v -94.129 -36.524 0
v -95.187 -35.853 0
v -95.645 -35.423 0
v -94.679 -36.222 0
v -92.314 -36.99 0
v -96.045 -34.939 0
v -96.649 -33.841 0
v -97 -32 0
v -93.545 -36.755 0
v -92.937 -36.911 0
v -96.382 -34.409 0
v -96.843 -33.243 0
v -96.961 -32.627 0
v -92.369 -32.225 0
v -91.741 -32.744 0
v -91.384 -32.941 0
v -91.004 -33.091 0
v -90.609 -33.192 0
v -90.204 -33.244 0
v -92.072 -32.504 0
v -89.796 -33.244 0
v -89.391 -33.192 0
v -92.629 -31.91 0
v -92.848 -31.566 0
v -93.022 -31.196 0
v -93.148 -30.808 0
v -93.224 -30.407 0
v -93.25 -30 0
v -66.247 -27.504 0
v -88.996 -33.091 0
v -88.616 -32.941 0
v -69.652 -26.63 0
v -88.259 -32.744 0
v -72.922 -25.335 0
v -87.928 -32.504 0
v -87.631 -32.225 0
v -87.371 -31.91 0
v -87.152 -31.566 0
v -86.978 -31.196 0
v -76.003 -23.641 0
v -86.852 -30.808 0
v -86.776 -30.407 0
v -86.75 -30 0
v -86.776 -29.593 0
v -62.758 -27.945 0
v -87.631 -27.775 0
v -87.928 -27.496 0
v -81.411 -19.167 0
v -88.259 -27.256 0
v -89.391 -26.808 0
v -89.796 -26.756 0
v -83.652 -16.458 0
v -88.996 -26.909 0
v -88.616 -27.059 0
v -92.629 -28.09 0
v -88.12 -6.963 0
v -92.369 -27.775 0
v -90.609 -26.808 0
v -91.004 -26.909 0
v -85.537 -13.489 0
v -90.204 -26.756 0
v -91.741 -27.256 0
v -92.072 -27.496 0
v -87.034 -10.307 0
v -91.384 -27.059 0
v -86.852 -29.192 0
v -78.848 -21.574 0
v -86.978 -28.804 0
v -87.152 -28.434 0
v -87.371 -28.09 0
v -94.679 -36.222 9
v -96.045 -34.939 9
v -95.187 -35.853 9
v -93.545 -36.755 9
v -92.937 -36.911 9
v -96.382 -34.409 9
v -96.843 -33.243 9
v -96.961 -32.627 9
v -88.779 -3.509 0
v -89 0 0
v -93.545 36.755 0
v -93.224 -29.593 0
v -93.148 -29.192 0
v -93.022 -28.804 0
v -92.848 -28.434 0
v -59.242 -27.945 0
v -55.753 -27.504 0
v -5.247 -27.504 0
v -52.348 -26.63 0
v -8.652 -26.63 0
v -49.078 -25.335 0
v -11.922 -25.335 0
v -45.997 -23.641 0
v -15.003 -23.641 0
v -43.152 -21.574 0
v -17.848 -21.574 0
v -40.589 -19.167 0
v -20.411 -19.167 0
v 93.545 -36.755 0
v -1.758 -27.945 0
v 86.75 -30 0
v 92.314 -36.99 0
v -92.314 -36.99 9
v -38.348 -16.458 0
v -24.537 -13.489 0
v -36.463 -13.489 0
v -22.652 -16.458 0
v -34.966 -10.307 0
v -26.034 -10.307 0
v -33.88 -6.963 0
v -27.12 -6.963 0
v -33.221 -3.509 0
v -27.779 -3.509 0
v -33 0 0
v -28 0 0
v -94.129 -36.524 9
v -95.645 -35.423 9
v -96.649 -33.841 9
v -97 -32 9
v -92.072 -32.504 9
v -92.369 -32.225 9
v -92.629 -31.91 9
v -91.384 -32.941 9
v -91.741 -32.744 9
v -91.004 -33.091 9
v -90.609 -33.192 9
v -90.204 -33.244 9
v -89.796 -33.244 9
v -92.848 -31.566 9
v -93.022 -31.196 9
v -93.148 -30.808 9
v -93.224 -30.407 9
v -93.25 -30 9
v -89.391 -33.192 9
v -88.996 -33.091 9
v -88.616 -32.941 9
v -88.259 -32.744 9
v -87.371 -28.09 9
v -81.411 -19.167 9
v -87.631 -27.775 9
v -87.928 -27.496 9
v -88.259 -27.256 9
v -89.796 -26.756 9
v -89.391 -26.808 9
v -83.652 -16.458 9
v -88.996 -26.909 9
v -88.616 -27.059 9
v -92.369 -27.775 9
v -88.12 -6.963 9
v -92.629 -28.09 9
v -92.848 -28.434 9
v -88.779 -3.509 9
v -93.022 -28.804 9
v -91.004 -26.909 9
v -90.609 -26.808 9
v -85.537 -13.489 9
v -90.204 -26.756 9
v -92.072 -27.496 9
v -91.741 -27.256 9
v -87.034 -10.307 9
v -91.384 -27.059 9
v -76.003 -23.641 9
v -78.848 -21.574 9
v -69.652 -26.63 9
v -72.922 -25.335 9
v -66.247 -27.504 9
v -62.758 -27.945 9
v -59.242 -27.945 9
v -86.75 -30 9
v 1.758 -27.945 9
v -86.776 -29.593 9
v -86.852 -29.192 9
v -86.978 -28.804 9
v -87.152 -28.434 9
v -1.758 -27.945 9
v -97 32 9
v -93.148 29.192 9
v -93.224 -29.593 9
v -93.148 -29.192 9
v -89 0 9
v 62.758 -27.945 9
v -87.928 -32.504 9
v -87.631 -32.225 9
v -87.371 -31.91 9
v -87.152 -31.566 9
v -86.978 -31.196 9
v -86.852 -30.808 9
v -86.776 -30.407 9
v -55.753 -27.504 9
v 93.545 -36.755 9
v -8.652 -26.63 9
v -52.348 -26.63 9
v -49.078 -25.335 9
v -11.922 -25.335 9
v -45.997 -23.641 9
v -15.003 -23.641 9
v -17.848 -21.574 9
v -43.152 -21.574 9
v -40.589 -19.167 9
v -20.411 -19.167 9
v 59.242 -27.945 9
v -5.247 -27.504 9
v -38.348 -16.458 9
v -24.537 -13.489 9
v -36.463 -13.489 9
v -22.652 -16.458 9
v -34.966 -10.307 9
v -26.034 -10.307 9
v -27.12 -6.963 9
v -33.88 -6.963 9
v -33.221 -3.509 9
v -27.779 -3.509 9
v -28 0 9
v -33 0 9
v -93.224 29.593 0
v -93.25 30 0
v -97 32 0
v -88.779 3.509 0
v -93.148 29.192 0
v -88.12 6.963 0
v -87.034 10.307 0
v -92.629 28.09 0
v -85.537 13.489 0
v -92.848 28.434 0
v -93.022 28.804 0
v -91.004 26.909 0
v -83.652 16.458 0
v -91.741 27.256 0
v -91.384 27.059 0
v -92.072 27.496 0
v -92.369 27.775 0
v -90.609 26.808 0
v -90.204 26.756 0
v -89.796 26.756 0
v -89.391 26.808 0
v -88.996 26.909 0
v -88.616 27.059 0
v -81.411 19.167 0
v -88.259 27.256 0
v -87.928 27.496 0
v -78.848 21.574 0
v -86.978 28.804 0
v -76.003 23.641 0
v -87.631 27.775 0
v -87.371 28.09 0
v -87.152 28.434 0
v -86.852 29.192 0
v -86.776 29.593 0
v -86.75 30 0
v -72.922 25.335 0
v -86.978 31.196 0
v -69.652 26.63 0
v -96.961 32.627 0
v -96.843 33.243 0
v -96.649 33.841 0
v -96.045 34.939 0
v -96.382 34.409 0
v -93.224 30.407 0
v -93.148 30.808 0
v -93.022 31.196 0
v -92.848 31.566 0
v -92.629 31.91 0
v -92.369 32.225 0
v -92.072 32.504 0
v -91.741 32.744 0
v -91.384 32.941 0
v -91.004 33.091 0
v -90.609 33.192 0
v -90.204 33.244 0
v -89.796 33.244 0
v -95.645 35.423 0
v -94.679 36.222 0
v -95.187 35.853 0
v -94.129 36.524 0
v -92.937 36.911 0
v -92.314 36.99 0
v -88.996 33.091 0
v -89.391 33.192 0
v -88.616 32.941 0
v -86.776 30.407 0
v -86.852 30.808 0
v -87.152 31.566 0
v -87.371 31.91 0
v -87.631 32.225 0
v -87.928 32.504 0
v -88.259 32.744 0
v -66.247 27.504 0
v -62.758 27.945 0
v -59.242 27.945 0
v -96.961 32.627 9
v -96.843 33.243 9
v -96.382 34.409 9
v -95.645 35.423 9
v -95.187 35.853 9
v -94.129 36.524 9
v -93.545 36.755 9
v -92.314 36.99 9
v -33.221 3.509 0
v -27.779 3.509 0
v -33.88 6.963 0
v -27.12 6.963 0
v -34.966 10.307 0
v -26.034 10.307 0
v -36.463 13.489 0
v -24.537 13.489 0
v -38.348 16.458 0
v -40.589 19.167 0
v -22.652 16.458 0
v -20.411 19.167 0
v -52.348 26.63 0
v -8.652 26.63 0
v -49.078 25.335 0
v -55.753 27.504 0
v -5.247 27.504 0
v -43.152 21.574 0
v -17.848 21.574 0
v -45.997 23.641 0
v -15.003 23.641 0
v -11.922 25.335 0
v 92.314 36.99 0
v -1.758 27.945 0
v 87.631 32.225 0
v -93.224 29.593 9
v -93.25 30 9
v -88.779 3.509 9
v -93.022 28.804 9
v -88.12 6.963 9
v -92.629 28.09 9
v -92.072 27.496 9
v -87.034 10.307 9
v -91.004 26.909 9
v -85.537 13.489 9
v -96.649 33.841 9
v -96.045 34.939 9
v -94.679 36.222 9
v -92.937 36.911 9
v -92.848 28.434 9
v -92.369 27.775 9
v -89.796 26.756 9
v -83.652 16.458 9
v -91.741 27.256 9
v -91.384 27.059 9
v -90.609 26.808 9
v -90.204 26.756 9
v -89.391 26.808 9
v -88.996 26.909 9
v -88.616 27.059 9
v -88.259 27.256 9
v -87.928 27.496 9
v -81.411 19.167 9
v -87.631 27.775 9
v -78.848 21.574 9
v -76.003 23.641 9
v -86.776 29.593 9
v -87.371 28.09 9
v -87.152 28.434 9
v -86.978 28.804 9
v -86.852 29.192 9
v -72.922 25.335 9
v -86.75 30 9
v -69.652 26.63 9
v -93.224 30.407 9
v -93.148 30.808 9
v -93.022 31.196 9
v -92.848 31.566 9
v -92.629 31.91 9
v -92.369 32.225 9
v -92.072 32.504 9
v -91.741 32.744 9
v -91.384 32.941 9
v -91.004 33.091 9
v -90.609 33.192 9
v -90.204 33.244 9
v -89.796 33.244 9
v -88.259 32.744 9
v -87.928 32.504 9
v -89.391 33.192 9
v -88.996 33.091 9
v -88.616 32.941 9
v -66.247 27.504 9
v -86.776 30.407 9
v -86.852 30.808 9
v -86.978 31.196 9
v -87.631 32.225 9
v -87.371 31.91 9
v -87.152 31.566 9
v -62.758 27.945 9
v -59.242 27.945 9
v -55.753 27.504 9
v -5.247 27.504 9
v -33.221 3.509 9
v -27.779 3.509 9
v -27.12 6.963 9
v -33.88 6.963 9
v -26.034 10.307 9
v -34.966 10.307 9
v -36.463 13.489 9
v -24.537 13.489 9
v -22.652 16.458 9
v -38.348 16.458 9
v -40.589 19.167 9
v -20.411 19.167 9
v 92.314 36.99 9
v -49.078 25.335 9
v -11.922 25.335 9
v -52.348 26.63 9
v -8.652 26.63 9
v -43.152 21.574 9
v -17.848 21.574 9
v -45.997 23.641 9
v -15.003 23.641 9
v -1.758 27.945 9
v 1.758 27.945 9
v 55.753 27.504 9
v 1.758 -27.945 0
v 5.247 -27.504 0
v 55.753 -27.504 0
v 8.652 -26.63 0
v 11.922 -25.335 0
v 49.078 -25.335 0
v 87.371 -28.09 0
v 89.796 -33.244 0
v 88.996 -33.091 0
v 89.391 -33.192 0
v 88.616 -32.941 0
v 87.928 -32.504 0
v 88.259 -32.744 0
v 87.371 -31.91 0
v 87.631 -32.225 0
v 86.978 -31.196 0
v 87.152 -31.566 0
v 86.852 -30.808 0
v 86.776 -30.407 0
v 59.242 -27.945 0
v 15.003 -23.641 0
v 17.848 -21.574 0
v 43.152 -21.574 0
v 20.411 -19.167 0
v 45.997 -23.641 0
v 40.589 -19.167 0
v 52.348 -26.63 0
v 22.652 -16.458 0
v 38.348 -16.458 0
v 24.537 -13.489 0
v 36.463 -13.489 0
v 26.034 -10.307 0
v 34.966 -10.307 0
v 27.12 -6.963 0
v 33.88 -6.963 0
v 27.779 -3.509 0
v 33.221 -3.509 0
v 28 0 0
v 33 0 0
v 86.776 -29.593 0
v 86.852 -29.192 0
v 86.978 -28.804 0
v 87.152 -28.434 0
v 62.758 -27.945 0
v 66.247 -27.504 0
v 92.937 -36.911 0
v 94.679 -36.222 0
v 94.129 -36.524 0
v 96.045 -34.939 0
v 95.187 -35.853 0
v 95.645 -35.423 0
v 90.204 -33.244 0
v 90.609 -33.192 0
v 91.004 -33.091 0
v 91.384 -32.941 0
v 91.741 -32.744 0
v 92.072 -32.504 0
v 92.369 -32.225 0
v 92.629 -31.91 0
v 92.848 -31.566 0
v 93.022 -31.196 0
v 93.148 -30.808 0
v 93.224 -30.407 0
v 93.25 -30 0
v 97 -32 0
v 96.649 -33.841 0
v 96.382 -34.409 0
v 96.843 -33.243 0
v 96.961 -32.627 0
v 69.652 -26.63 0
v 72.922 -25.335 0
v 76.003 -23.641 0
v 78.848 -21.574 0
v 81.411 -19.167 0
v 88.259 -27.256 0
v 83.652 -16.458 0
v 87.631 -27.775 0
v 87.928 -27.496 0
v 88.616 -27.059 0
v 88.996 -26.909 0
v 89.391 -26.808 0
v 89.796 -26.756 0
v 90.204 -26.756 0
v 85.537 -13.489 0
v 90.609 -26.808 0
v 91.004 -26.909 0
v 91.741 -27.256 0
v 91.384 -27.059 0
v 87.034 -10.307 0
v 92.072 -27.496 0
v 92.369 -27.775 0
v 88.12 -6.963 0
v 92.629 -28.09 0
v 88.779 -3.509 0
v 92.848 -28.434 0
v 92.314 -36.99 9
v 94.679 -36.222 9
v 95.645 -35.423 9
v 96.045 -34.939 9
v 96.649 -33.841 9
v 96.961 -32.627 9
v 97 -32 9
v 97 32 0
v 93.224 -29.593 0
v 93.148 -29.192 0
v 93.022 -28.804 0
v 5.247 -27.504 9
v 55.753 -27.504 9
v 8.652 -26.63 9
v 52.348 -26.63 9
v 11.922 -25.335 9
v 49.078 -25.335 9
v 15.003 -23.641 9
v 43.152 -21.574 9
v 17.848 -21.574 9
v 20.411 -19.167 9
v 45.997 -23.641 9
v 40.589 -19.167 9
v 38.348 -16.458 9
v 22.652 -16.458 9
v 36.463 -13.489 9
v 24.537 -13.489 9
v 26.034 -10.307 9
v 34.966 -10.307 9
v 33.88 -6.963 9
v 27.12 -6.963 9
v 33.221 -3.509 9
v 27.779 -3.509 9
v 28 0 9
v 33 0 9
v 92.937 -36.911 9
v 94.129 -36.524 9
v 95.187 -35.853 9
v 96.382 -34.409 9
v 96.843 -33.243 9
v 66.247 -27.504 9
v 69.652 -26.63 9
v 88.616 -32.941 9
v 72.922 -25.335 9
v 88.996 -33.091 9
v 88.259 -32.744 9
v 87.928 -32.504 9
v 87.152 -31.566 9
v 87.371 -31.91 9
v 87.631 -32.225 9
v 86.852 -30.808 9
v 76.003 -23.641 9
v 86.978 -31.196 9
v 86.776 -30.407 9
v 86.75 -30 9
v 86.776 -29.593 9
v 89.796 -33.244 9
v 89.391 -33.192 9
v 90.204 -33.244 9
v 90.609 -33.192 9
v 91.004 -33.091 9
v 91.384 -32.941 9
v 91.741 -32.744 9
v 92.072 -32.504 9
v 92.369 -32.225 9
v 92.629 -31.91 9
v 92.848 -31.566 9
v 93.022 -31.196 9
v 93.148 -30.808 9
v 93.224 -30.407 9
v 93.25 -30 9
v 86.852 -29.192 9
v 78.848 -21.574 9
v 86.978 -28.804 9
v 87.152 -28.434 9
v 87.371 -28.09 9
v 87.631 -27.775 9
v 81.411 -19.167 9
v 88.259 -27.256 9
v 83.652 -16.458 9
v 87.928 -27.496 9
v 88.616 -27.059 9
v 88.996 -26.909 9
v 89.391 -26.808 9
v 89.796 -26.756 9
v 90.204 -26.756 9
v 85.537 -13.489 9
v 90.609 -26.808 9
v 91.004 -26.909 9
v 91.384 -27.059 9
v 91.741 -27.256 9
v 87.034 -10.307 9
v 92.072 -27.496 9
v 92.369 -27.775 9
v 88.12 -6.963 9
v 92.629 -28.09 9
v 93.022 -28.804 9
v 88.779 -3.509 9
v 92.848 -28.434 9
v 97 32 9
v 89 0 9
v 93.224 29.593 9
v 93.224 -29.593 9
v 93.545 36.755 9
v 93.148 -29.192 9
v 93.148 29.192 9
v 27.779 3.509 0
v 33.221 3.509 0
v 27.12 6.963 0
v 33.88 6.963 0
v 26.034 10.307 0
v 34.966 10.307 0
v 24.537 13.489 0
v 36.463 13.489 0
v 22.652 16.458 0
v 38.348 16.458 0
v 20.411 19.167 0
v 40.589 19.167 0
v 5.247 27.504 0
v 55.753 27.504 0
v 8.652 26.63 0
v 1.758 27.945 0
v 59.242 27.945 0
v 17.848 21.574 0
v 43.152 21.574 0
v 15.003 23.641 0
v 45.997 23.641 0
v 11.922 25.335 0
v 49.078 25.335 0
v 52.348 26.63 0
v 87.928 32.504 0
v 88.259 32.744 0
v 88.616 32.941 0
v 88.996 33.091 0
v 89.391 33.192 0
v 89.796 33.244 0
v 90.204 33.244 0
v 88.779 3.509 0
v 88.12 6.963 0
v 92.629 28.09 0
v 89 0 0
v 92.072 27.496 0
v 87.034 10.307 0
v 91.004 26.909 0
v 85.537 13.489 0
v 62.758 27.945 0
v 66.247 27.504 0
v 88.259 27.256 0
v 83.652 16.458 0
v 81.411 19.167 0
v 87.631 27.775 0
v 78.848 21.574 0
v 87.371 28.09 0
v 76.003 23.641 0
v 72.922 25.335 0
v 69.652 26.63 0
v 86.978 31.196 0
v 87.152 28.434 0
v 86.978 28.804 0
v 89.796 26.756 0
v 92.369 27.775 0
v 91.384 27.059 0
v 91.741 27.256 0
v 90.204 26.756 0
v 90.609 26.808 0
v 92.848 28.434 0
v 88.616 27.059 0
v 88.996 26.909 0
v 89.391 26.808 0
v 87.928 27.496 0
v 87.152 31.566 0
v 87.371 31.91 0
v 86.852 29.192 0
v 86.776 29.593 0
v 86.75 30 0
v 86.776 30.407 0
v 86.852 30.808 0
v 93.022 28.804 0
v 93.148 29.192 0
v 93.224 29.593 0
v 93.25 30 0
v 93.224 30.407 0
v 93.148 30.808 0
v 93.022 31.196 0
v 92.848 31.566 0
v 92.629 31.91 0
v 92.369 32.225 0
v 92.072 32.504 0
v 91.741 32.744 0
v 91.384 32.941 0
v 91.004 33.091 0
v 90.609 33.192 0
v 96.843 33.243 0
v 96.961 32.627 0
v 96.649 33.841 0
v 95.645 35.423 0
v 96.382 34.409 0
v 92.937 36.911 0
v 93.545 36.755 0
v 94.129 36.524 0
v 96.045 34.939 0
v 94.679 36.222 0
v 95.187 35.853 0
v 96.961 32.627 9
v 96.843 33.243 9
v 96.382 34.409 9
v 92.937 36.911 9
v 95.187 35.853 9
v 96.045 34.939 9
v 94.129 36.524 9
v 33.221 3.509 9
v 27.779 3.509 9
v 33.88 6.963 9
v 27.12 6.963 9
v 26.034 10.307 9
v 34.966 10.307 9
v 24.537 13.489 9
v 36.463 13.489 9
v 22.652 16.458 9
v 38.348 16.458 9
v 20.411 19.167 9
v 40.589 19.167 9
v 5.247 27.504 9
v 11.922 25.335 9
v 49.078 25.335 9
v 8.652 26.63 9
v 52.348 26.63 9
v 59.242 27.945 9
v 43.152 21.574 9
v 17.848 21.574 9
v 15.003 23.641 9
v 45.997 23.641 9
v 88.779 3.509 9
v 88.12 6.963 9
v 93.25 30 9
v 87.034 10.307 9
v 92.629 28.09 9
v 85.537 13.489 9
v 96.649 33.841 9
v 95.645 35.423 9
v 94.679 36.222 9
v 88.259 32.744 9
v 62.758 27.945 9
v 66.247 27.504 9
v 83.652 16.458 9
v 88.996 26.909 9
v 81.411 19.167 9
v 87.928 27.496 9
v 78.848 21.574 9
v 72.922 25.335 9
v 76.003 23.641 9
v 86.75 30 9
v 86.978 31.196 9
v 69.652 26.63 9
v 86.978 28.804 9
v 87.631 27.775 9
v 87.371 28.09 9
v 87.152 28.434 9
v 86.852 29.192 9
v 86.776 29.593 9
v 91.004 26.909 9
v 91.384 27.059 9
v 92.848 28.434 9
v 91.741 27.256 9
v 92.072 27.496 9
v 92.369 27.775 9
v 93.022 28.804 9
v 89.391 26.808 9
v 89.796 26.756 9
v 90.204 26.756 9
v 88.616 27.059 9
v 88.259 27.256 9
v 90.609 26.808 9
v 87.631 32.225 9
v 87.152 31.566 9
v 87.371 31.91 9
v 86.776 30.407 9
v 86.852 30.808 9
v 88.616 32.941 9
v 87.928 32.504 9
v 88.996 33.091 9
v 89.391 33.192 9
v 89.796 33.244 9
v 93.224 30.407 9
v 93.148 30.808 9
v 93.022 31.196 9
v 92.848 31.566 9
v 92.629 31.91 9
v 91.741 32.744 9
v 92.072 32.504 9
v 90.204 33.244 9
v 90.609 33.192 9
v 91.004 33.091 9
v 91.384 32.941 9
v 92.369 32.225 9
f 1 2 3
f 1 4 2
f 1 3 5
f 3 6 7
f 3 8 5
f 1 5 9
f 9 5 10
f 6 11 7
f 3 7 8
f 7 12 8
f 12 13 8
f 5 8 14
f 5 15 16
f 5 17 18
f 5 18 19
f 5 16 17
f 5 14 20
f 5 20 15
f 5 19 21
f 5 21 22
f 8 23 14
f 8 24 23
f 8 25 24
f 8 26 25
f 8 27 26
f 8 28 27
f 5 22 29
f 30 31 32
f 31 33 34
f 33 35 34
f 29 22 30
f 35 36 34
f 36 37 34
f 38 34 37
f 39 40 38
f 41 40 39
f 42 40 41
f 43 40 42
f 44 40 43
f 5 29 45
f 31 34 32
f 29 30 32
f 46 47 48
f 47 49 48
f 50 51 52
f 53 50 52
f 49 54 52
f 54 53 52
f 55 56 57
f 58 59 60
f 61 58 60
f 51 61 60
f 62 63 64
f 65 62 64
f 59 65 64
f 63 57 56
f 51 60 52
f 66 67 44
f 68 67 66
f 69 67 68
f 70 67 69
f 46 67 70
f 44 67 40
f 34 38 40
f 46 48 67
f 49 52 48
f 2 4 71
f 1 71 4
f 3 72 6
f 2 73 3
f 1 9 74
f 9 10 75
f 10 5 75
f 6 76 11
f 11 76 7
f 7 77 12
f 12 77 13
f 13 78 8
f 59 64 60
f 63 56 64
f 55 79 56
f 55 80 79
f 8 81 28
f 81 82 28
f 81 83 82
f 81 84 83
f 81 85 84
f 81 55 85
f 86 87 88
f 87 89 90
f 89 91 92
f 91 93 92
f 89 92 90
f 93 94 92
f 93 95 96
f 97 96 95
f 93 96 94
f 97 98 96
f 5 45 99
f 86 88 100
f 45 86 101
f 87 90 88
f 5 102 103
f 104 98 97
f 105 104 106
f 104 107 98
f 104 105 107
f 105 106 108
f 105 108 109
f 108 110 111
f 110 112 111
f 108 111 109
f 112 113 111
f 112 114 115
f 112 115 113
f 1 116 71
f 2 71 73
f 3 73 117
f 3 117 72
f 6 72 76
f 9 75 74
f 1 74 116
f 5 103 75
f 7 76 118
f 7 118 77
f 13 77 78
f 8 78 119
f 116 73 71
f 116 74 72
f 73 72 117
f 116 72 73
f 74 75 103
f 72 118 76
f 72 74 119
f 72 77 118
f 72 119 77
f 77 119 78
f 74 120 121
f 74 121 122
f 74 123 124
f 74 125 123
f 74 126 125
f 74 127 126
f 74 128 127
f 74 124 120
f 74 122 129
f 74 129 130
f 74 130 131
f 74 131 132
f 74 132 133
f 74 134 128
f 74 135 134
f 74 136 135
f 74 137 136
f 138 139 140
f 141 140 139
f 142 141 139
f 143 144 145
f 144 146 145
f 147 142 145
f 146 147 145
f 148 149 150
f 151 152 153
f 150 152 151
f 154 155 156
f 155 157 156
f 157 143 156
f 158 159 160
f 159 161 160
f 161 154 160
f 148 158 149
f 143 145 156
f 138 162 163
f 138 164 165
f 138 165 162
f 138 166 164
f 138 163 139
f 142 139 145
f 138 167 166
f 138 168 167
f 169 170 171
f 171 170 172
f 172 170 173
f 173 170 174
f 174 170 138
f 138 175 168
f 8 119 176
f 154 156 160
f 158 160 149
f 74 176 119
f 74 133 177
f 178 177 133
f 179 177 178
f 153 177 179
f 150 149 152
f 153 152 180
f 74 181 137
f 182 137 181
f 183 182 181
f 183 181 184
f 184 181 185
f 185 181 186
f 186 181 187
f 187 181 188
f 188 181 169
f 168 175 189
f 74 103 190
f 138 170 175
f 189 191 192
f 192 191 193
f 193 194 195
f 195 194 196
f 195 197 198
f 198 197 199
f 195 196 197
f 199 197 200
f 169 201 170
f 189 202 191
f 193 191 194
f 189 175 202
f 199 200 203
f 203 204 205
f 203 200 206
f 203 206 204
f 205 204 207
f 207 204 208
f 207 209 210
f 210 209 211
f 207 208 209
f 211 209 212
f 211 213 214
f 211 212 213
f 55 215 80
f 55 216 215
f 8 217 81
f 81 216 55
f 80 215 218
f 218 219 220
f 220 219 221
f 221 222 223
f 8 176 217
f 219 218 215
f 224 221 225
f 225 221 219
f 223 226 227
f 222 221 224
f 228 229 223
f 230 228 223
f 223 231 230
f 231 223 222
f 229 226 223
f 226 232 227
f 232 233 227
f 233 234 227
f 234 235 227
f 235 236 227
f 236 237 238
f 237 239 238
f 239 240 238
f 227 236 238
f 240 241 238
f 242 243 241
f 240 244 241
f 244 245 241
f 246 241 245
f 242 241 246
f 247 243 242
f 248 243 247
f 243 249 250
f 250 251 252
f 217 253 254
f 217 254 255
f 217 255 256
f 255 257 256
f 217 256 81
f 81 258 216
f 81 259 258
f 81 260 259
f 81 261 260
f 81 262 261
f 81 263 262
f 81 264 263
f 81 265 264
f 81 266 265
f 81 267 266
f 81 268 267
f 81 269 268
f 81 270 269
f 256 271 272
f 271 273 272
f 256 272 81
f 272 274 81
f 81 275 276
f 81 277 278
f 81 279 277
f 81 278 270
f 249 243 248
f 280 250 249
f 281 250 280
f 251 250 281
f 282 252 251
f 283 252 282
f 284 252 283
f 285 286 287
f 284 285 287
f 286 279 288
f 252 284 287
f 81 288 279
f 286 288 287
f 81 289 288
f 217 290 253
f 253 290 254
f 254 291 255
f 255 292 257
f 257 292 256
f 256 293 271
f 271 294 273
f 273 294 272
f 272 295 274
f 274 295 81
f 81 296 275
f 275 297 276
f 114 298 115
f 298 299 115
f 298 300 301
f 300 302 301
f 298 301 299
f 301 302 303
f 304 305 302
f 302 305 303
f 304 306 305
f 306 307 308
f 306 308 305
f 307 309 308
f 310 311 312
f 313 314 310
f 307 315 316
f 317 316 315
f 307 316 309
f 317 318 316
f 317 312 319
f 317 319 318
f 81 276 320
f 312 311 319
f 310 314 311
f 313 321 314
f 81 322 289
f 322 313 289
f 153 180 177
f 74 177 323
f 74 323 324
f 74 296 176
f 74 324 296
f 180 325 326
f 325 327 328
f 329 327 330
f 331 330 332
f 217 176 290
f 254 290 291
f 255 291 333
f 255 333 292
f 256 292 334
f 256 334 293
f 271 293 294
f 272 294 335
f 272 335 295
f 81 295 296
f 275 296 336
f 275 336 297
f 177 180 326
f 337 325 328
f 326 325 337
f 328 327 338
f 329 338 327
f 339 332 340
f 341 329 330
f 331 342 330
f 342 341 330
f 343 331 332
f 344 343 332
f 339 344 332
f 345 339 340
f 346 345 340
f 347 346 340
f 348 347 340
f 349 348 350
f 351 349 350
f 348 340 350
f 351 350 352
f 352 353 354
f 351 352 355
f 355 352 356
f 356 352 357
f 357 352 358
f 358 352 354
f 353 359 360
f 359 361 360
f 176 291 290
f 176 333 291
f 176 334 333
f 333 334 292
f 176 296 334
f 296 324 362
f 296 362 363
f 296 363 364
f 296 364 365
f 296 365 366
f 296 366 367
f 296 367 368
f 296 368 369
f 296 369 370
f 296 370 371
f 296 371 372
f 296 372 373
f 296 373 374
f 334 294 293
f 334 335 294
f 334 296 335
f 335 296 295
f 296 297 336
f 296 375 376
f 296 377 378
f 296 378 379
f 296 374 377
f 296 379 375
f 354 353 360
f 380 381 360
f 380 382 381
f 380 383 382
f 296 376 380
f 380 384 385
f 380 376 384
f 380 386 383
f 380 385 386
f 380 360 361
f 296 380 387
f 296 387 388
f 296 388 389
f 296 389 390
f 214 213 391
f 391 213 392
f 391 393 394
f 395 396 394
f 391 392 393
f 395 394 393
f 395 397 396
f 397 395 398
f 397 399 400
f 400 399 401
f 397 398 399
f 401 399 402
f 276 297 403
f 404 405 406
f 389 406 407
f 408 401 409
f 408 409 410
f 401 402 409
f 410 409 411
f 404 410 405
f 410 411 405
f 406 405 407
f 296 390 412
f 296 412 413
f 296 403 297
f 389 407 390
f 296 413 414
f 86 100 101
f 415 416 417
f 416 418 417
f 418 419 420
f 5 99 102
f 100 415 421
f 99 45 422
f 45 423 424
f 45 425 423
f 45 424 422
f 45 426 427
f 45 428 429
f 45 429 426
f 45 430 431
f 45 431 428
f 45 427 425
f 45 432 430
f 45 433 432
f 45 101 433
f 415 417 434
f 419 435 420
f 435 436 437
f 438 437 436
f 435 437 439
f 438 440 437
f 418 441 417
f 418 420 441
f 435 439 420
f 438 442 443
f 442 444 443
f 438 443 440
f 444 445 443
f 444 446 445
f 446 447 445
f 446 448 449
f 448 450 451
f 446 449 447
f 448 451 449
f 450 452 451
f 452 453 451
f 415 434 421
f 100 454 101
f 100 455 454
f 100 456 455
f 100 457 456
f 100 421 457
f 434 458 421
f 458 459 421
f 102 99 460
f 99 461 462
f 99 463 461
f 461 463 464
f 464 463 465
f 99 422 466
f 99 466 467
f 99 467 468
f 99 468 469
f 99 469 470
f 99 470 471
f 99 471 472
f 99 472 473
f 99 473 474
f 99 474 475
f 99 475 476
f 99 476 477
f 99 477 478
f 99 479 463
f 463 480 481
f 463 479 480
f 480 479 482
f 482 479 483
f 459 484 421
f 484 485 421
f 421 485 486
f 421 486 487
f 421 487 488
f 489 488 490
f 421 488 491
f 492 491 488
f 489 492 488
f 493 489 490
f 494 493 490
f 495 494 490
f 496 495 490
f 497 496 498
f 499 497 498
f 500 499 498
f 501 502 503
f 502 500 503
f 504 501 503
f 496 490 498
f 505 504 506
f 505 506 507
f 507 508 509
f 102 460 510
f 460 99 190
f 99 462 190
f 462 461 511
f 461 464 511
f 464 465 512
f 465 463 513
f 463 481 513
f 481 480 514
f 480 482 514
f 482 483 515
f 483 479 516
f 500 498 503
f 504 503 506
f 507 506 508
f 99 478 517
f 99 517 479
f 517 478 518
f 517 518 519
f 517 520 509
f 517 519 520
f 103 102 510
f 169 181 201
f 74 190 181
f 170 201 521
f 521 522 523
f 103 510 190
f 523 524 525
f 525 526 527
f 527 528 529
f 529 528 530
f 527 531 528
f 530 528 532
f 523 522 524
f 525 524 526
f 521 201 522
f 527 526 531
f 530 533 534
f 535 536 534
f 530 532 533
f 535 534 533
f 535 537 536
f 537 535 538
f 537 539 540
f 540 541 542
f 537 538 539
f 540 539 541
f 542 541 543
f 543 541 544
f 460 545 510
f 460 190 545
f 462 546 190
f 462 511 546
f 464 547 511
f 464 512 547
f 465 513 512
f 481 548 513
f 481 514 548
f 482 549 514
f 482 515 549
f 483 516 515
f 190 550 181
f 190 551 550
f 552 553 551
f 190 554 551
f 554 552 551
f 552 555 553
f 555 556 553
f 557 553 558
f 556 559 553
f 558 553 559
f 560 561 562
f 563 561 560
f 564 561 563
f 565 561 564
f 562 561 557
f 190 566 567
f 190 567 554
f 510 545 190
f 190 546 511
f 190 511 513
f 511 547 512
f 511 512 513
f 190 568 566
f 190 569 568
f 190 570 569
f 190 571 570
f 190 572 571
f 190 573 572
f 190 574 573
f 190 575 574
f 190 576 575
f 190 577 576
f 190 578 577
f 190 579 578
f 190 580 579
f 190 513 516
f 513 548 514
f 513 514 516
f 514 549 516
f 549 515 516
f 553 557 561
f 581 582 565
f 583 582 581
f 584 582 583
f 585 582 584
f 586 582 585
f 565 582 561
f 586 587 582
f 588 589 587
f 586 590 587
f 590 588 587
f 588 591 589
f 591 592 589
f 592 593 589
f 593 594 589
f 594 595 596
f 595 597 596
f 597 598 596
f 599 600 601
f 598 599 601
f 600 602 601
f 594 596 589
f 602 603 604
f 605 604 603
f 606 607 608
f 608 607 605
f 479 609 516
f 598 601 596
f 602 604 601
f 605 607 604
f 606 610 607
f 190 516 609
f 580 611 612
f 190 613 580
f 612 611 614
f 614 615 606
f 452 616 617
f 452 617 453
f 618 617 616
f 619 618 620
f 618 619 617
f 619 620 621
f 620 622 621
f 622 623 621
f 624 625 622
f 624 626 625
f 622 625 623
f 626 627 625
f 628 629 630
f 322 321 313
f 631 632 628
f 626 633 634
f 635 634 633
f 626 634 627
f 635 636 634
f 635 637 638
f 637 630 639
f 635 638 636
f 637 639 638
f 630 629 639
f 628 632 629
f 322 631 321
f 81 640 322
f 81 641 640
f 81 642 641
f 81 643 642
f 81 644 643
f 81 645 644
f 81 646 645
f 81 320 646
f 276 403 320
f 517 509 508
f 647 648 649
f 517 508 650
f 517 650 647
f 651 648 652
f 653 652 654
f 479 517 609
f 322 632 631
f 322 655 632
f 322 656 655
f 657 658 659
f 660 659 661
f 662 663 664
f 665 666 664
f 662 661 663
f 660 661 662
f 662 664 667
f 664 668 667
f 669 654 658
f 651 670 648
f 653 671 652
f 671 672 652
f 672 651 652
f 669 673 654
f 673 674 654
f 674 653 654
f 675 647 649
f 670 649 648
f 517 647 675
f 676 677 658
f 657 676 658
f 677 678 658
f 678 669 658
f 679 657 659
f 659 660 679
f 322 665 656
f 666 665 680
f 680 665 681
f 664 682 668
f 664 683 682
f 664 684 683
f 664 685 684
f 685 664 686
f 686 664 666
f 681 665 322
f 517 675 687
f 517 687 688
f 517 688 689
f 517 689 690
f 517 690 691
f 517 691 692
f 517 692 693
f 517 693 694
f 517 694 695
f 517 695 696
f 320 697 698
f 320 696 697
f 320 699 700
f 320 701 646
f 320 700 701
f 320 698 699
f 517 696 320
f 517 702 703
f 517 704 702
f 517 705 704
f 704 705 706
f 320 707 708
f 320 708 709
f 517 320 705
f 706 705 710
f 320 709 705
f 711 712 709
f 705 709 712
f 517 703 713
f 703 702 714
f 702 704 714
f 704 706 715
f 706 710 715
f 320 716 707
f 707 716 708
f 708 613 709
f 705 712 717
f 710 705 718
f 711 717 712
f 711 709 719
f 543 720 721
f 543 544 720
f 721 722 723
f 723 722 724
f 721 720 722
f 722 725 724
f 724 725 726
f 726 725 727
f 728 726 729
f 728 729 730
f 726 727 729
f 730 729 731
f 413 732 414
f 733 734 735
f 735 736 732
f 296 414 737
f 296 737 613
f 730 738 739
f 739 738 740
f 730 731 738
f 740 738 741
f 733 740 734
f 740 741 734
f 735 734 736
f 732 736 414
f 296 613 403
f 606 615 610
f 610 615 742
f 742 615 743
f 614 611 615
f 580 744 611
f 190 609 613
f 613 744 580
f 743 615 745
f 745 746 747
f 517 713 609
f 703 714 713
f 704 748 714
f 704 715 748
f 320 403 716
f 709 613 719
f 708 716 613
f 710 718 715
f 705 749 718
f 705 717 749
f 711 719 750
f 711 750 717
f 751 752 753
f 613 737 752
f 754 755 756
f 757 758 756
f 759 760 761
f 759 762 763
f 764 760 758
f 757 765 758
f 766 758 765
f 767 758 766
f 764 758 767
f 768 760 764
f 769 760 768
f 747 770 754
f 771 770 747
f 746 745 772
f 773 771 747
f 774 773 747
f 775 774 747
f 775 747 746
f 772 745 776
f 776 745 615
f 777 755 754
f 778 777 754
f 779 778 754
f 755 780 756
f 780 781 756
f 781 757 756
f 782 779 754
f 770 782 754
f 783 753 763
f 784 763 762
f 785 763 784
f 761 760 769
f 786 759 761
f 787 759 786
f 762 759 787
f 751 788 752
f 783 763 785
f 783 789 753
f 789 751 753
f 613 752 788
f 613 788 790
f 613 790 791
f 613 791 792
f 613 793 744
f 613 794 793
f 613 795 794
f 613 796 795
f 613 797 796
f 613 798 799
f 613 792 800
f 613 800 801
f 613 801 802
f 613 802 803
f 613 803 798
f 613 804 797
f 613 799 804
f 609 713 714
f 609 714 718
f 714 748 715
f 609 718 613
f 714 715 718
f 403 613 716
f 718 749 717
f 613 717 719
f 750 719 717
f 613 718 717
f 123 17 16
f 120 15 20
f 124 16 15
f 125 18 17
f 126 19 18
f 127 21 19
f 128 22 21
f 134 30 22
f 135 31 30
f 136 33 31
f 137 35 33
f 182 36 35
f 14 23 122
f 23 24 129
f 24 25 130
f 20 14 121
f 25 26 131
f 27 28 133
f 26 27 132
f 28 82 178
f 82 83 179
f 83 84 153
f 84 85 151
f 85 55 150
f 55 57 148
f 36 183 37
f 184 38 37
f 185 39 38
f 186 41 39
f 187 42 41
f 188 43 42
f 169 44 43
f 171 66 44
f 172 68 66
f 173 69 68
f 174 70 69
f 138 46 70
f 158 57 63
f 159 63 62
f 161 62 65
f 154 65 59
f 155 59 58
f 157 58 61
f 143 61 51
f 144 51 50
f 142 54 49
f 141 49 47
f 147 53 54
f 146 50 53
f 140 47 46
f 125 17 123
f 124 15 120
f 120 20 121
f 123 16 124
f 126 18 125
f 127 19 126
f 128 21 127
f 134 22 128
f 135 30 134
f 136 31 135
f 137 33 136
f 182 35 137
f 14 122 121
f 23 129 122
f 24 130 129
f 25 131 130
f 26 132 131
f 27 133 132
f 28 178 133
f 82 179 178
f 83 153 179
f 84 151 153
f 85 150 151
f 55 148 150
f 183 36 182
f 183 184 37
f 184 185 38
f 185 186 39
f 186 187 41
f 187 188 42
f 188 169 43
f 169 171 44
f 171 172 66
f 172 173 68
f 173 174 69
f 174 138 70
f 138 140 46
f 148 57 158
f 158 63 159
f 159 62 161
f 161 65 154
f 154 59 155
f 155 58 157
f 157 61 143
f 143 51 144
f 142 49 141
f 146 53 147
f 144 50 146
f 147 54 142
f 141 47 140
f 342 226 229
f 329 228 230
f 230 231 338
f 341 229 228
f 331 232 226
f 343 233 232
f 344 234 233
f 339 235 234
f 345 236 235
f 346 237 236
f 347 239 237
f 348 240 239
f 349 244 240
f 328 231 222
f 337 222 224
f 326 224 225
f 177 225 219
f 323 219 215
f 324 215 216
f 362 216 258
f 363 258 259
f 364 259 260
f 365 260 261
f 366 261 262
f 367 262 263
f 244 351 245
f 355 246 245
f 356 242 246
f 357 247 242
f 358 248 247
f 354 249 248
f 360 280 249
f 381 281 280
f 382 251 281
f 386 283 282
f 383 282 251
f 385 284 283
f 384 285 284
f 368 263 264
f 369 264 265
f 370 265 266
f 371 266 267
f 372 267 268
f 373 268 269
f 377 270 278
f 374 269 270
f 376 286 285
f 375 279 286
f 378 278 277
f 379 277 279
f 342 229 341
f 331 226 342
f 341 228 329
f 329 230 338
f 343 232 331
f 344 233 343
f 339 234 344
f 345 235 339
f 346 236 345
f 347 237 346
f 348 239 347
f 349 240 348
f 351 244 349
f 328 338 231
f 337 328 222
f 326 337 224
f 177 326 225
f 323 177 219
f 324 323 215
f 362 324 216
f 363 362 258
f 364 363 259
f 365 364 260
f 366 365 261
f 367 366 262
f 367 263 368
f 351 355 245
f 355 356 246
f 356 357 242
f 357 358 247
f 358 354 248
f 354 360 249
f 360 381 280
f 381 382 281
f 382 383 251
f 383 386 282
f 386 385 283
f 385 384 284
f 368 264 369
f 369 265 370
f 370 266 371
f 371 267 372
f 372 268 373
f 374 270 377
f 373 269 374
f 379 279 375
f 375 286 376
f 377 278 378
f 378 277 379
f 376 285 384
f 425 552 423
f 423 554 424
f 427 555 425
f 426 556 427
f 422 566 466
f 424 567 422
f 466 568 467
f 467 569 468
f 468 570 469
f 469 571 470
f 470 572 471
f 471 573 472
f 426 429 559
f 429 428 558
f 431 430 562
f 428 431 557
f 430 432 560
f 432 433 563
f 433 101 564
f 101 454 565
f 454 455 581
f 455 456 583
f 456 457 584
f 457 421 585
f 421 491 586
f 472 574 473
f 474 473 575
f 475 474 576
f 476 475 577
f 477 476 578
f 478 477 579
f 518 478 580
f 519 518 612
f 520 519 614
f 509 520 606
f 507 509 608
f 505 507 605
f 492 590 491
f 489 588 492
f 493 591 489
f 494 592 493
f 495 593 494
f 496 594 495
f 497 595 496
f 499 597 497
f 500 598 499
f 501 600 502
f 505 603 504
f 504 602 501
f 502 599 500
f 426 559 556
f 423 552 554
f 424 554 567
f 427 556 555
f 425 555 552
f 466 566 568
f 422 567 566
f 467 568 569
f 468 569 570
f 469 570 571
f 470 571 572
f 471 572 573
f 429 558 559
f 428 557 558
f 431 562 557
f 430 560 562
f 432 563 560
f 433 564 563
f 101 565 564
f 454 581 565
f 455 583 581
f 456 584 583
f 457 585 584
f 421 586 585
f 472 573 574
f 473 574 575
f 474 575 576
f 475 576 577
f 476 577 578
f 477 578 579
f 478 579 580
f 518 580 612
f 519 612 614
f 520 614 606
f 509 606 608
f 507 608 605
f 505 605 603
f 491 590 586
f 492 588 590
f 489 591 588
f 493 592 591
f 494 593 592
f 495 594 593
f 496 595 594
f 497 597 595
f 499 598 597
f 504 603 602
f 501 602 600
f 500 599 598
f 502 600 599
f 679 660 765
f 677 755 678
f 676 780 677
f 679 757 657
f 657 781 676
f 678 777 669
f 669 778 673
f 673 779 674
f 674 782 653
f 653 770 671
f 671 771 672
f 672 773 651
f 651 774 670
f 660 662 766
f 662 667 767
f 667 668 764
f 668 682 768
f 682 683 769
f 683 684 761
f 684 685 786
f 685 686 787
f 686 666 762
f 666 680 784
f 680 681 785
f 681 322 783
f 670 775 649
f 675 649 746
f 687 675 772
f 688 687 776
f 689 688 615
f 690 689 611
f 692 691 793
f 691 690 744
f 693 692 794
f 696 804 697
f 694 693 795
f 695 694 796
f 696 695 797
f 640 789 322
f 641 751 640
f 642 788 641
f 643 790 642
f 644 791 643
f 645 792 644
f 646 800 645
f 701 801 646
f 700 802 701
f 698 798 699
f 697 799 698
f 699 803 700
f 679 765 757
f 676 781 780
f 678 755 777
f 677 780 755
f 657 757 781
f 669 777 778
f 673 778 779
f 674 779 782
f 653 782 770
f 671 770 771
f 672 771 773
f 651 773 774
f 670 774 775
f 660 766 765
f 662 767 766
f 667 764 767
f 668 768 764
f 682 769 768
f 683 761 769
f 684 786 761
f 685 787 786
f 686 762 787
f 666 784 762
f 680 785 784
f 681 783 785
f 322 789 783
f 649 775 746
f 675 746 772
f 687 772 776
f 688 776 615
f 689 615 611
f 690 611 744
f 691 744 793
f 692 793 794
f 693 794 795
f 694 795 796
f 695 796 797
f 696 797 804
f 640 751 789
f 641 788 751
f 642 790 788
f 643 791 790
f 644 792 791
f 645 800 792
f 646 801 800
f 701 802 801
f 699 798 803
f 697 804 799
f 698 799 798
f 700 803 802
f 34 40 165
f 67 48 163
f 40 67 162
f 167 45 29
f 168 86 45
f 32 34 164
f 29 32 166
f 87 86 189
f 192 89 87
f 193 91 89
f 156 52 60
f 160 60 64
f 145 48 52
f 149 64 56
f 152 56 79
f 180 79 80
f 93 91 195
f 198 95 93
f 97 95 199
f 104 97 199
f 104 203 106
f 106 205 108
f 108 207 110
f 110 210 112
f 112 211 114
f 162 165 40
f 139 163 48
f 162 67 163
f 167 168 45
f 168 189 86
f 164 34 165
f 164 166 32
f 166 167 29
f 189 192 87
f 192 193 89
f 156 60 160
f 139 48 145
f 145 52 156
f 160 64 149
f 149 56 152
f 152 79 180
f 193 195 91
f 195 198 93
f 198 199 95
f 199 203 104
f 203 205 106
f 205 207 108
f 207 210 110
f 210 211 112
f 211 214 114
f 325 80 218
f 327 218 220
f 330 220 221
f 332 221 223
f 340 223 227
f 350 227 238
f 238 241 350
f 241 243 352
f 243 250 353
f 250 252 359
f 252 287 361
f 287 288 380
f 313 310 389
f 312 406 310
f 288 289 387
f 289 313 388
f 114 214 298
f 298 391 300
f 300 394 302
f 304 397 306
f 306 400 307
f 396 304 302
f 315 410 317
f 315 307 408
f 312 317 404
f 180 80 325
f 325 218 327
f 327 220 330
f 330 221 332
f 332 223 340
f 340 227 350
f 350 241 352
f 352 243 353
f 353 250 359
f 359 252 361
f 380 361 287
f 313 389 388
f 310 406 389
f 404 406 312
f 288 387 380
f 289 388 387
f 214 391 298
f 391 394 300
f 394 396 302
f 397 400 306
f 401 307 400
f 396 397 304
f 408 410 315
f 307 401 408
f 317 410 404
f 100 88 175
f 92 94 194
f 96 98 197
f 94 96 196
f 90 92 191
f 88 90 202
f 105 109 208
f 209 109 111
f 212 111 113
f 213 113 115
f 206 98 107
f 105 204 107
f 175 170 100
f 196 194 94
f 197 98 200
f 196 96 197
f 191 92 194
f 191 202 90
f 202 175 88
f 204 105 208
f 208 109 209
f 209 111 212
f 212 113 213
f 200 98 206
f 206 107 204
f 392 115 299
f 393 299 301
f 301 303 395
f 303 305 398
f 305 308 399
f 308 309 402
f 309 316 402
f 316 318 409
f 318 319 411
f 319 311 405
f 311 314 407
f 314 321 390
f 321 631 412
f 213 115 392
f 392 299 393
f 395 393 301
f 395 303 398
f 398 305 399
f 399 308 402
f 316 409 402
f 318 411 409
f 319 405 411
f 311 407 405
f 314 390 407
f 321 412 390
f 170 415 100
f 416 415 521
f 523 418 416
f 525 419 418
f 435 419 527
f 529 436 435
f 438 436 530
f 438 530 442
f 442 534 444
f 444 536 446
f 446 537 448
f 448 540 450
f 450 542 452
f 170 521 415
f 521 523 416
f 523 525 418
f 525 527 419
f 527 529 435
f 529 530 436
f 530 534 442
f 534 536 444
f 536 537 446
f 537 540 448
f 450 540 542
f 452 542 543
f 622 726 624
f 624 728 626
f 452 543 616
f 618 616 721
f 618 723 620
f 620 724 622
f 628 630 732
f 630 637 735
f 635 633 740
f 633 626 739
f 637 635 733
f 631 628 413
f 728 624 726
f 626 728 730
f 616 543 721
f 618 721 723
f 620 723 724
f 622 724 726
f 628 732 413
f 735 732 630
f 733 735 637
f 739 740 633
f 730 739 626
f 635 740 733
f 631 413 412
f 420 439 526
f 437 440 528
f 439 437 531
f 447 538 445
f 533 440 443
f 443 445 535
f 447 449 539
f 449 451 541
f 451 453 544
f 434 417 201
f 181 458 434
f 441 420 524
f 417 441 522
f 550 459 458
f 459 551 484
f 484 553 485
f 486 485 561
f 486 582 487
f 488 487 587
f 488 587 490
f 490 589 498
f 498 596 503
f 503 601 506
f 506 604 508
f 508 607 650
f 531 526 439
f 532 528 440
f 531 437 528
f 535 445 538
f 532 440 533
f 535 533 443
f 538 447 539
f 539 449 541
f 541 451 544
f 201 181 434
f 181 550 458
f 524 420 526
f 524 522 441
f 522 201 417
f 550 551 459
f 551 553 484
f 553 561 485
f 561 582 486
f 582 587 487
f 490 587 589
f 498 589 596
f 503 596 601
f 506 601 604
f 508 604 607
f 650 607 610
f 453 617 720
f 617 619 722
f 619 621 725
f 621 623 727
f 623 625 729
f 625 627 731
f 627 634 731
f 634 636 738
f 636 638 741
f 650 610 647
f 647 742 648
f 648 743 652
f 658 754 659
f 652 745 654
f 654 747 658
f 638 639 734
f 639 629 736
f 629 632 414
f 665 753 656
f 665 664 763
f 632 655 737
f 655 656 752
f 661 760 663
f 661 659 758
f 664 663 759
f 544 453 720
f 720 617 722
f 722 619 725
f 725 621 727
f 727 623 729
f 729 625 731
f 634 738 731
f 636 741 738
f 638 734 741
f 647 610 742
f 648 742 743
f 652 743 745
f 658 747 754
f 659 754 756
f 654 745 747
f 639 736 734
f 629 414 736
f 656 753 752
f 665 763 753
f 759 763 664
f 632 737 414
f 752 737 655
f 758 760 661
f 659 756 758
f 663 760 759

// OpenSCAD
$fn = 50;

difference() {
	union() {
		hull() {
			translate(v = [-92.0, 32.0, 0]) {
				cylinder(h = 9, r = 5);
			}
			translate(v = [92.0, 32.0, 0]) {
				cylinder(h = 9, r = 5);
			}
			translate(v = [-92.0, -32.0, 0]) {
				cylinder(h = 9, r = 5);
			}
			translate(v = [92.0, -32.0, 0]) {
				cylinder(h = 9, r = 5);
			}
		}
	}
	union() {
		translate(v = [-90.0, -30.0, -100.0]) {
			cylinder(h = 200, r = 3.25);
		}
		translate(v = [-90.0, 30.0, -100.0]) {
			cylinder(h = 200, r = 3.25);
		}
		translate(v = [90.0, -30.0, -100.0]) {
			cylinder(h = 200, r = 3.25);
		}
		translate(v = [90.0, 30.0, -100.0]) {
			cylinder(h = 200, r = 3.25);
		}
		translate(v = [-90.0, -30.0, -100.0]) {
			cylinder(h = 200, r = 1.8);
		}
		translate(v = [-90.0, 30.0, -100.0]) {
			cylinder(h = 200, r = 1.8);
		}
		translate(v = [90.0, -30.0, -100.0]) {
			cylinder(h = 200, r = 1.8);
		}
		translate(v = [90.0, 30.0, -100.0]) {
			cylinder(h = 200, r = 1.8);
		}
		translate(v = [-61.0, 0, 0.0]) {
			cylinder(h = 9, r = 28.0);
		}
		cylinder(h = 9, r = 28.0);
		translate(v = [61.0, 0, 0.0]) {
			cylinder(h = 9, r = 28.0);
		}
	}
}
